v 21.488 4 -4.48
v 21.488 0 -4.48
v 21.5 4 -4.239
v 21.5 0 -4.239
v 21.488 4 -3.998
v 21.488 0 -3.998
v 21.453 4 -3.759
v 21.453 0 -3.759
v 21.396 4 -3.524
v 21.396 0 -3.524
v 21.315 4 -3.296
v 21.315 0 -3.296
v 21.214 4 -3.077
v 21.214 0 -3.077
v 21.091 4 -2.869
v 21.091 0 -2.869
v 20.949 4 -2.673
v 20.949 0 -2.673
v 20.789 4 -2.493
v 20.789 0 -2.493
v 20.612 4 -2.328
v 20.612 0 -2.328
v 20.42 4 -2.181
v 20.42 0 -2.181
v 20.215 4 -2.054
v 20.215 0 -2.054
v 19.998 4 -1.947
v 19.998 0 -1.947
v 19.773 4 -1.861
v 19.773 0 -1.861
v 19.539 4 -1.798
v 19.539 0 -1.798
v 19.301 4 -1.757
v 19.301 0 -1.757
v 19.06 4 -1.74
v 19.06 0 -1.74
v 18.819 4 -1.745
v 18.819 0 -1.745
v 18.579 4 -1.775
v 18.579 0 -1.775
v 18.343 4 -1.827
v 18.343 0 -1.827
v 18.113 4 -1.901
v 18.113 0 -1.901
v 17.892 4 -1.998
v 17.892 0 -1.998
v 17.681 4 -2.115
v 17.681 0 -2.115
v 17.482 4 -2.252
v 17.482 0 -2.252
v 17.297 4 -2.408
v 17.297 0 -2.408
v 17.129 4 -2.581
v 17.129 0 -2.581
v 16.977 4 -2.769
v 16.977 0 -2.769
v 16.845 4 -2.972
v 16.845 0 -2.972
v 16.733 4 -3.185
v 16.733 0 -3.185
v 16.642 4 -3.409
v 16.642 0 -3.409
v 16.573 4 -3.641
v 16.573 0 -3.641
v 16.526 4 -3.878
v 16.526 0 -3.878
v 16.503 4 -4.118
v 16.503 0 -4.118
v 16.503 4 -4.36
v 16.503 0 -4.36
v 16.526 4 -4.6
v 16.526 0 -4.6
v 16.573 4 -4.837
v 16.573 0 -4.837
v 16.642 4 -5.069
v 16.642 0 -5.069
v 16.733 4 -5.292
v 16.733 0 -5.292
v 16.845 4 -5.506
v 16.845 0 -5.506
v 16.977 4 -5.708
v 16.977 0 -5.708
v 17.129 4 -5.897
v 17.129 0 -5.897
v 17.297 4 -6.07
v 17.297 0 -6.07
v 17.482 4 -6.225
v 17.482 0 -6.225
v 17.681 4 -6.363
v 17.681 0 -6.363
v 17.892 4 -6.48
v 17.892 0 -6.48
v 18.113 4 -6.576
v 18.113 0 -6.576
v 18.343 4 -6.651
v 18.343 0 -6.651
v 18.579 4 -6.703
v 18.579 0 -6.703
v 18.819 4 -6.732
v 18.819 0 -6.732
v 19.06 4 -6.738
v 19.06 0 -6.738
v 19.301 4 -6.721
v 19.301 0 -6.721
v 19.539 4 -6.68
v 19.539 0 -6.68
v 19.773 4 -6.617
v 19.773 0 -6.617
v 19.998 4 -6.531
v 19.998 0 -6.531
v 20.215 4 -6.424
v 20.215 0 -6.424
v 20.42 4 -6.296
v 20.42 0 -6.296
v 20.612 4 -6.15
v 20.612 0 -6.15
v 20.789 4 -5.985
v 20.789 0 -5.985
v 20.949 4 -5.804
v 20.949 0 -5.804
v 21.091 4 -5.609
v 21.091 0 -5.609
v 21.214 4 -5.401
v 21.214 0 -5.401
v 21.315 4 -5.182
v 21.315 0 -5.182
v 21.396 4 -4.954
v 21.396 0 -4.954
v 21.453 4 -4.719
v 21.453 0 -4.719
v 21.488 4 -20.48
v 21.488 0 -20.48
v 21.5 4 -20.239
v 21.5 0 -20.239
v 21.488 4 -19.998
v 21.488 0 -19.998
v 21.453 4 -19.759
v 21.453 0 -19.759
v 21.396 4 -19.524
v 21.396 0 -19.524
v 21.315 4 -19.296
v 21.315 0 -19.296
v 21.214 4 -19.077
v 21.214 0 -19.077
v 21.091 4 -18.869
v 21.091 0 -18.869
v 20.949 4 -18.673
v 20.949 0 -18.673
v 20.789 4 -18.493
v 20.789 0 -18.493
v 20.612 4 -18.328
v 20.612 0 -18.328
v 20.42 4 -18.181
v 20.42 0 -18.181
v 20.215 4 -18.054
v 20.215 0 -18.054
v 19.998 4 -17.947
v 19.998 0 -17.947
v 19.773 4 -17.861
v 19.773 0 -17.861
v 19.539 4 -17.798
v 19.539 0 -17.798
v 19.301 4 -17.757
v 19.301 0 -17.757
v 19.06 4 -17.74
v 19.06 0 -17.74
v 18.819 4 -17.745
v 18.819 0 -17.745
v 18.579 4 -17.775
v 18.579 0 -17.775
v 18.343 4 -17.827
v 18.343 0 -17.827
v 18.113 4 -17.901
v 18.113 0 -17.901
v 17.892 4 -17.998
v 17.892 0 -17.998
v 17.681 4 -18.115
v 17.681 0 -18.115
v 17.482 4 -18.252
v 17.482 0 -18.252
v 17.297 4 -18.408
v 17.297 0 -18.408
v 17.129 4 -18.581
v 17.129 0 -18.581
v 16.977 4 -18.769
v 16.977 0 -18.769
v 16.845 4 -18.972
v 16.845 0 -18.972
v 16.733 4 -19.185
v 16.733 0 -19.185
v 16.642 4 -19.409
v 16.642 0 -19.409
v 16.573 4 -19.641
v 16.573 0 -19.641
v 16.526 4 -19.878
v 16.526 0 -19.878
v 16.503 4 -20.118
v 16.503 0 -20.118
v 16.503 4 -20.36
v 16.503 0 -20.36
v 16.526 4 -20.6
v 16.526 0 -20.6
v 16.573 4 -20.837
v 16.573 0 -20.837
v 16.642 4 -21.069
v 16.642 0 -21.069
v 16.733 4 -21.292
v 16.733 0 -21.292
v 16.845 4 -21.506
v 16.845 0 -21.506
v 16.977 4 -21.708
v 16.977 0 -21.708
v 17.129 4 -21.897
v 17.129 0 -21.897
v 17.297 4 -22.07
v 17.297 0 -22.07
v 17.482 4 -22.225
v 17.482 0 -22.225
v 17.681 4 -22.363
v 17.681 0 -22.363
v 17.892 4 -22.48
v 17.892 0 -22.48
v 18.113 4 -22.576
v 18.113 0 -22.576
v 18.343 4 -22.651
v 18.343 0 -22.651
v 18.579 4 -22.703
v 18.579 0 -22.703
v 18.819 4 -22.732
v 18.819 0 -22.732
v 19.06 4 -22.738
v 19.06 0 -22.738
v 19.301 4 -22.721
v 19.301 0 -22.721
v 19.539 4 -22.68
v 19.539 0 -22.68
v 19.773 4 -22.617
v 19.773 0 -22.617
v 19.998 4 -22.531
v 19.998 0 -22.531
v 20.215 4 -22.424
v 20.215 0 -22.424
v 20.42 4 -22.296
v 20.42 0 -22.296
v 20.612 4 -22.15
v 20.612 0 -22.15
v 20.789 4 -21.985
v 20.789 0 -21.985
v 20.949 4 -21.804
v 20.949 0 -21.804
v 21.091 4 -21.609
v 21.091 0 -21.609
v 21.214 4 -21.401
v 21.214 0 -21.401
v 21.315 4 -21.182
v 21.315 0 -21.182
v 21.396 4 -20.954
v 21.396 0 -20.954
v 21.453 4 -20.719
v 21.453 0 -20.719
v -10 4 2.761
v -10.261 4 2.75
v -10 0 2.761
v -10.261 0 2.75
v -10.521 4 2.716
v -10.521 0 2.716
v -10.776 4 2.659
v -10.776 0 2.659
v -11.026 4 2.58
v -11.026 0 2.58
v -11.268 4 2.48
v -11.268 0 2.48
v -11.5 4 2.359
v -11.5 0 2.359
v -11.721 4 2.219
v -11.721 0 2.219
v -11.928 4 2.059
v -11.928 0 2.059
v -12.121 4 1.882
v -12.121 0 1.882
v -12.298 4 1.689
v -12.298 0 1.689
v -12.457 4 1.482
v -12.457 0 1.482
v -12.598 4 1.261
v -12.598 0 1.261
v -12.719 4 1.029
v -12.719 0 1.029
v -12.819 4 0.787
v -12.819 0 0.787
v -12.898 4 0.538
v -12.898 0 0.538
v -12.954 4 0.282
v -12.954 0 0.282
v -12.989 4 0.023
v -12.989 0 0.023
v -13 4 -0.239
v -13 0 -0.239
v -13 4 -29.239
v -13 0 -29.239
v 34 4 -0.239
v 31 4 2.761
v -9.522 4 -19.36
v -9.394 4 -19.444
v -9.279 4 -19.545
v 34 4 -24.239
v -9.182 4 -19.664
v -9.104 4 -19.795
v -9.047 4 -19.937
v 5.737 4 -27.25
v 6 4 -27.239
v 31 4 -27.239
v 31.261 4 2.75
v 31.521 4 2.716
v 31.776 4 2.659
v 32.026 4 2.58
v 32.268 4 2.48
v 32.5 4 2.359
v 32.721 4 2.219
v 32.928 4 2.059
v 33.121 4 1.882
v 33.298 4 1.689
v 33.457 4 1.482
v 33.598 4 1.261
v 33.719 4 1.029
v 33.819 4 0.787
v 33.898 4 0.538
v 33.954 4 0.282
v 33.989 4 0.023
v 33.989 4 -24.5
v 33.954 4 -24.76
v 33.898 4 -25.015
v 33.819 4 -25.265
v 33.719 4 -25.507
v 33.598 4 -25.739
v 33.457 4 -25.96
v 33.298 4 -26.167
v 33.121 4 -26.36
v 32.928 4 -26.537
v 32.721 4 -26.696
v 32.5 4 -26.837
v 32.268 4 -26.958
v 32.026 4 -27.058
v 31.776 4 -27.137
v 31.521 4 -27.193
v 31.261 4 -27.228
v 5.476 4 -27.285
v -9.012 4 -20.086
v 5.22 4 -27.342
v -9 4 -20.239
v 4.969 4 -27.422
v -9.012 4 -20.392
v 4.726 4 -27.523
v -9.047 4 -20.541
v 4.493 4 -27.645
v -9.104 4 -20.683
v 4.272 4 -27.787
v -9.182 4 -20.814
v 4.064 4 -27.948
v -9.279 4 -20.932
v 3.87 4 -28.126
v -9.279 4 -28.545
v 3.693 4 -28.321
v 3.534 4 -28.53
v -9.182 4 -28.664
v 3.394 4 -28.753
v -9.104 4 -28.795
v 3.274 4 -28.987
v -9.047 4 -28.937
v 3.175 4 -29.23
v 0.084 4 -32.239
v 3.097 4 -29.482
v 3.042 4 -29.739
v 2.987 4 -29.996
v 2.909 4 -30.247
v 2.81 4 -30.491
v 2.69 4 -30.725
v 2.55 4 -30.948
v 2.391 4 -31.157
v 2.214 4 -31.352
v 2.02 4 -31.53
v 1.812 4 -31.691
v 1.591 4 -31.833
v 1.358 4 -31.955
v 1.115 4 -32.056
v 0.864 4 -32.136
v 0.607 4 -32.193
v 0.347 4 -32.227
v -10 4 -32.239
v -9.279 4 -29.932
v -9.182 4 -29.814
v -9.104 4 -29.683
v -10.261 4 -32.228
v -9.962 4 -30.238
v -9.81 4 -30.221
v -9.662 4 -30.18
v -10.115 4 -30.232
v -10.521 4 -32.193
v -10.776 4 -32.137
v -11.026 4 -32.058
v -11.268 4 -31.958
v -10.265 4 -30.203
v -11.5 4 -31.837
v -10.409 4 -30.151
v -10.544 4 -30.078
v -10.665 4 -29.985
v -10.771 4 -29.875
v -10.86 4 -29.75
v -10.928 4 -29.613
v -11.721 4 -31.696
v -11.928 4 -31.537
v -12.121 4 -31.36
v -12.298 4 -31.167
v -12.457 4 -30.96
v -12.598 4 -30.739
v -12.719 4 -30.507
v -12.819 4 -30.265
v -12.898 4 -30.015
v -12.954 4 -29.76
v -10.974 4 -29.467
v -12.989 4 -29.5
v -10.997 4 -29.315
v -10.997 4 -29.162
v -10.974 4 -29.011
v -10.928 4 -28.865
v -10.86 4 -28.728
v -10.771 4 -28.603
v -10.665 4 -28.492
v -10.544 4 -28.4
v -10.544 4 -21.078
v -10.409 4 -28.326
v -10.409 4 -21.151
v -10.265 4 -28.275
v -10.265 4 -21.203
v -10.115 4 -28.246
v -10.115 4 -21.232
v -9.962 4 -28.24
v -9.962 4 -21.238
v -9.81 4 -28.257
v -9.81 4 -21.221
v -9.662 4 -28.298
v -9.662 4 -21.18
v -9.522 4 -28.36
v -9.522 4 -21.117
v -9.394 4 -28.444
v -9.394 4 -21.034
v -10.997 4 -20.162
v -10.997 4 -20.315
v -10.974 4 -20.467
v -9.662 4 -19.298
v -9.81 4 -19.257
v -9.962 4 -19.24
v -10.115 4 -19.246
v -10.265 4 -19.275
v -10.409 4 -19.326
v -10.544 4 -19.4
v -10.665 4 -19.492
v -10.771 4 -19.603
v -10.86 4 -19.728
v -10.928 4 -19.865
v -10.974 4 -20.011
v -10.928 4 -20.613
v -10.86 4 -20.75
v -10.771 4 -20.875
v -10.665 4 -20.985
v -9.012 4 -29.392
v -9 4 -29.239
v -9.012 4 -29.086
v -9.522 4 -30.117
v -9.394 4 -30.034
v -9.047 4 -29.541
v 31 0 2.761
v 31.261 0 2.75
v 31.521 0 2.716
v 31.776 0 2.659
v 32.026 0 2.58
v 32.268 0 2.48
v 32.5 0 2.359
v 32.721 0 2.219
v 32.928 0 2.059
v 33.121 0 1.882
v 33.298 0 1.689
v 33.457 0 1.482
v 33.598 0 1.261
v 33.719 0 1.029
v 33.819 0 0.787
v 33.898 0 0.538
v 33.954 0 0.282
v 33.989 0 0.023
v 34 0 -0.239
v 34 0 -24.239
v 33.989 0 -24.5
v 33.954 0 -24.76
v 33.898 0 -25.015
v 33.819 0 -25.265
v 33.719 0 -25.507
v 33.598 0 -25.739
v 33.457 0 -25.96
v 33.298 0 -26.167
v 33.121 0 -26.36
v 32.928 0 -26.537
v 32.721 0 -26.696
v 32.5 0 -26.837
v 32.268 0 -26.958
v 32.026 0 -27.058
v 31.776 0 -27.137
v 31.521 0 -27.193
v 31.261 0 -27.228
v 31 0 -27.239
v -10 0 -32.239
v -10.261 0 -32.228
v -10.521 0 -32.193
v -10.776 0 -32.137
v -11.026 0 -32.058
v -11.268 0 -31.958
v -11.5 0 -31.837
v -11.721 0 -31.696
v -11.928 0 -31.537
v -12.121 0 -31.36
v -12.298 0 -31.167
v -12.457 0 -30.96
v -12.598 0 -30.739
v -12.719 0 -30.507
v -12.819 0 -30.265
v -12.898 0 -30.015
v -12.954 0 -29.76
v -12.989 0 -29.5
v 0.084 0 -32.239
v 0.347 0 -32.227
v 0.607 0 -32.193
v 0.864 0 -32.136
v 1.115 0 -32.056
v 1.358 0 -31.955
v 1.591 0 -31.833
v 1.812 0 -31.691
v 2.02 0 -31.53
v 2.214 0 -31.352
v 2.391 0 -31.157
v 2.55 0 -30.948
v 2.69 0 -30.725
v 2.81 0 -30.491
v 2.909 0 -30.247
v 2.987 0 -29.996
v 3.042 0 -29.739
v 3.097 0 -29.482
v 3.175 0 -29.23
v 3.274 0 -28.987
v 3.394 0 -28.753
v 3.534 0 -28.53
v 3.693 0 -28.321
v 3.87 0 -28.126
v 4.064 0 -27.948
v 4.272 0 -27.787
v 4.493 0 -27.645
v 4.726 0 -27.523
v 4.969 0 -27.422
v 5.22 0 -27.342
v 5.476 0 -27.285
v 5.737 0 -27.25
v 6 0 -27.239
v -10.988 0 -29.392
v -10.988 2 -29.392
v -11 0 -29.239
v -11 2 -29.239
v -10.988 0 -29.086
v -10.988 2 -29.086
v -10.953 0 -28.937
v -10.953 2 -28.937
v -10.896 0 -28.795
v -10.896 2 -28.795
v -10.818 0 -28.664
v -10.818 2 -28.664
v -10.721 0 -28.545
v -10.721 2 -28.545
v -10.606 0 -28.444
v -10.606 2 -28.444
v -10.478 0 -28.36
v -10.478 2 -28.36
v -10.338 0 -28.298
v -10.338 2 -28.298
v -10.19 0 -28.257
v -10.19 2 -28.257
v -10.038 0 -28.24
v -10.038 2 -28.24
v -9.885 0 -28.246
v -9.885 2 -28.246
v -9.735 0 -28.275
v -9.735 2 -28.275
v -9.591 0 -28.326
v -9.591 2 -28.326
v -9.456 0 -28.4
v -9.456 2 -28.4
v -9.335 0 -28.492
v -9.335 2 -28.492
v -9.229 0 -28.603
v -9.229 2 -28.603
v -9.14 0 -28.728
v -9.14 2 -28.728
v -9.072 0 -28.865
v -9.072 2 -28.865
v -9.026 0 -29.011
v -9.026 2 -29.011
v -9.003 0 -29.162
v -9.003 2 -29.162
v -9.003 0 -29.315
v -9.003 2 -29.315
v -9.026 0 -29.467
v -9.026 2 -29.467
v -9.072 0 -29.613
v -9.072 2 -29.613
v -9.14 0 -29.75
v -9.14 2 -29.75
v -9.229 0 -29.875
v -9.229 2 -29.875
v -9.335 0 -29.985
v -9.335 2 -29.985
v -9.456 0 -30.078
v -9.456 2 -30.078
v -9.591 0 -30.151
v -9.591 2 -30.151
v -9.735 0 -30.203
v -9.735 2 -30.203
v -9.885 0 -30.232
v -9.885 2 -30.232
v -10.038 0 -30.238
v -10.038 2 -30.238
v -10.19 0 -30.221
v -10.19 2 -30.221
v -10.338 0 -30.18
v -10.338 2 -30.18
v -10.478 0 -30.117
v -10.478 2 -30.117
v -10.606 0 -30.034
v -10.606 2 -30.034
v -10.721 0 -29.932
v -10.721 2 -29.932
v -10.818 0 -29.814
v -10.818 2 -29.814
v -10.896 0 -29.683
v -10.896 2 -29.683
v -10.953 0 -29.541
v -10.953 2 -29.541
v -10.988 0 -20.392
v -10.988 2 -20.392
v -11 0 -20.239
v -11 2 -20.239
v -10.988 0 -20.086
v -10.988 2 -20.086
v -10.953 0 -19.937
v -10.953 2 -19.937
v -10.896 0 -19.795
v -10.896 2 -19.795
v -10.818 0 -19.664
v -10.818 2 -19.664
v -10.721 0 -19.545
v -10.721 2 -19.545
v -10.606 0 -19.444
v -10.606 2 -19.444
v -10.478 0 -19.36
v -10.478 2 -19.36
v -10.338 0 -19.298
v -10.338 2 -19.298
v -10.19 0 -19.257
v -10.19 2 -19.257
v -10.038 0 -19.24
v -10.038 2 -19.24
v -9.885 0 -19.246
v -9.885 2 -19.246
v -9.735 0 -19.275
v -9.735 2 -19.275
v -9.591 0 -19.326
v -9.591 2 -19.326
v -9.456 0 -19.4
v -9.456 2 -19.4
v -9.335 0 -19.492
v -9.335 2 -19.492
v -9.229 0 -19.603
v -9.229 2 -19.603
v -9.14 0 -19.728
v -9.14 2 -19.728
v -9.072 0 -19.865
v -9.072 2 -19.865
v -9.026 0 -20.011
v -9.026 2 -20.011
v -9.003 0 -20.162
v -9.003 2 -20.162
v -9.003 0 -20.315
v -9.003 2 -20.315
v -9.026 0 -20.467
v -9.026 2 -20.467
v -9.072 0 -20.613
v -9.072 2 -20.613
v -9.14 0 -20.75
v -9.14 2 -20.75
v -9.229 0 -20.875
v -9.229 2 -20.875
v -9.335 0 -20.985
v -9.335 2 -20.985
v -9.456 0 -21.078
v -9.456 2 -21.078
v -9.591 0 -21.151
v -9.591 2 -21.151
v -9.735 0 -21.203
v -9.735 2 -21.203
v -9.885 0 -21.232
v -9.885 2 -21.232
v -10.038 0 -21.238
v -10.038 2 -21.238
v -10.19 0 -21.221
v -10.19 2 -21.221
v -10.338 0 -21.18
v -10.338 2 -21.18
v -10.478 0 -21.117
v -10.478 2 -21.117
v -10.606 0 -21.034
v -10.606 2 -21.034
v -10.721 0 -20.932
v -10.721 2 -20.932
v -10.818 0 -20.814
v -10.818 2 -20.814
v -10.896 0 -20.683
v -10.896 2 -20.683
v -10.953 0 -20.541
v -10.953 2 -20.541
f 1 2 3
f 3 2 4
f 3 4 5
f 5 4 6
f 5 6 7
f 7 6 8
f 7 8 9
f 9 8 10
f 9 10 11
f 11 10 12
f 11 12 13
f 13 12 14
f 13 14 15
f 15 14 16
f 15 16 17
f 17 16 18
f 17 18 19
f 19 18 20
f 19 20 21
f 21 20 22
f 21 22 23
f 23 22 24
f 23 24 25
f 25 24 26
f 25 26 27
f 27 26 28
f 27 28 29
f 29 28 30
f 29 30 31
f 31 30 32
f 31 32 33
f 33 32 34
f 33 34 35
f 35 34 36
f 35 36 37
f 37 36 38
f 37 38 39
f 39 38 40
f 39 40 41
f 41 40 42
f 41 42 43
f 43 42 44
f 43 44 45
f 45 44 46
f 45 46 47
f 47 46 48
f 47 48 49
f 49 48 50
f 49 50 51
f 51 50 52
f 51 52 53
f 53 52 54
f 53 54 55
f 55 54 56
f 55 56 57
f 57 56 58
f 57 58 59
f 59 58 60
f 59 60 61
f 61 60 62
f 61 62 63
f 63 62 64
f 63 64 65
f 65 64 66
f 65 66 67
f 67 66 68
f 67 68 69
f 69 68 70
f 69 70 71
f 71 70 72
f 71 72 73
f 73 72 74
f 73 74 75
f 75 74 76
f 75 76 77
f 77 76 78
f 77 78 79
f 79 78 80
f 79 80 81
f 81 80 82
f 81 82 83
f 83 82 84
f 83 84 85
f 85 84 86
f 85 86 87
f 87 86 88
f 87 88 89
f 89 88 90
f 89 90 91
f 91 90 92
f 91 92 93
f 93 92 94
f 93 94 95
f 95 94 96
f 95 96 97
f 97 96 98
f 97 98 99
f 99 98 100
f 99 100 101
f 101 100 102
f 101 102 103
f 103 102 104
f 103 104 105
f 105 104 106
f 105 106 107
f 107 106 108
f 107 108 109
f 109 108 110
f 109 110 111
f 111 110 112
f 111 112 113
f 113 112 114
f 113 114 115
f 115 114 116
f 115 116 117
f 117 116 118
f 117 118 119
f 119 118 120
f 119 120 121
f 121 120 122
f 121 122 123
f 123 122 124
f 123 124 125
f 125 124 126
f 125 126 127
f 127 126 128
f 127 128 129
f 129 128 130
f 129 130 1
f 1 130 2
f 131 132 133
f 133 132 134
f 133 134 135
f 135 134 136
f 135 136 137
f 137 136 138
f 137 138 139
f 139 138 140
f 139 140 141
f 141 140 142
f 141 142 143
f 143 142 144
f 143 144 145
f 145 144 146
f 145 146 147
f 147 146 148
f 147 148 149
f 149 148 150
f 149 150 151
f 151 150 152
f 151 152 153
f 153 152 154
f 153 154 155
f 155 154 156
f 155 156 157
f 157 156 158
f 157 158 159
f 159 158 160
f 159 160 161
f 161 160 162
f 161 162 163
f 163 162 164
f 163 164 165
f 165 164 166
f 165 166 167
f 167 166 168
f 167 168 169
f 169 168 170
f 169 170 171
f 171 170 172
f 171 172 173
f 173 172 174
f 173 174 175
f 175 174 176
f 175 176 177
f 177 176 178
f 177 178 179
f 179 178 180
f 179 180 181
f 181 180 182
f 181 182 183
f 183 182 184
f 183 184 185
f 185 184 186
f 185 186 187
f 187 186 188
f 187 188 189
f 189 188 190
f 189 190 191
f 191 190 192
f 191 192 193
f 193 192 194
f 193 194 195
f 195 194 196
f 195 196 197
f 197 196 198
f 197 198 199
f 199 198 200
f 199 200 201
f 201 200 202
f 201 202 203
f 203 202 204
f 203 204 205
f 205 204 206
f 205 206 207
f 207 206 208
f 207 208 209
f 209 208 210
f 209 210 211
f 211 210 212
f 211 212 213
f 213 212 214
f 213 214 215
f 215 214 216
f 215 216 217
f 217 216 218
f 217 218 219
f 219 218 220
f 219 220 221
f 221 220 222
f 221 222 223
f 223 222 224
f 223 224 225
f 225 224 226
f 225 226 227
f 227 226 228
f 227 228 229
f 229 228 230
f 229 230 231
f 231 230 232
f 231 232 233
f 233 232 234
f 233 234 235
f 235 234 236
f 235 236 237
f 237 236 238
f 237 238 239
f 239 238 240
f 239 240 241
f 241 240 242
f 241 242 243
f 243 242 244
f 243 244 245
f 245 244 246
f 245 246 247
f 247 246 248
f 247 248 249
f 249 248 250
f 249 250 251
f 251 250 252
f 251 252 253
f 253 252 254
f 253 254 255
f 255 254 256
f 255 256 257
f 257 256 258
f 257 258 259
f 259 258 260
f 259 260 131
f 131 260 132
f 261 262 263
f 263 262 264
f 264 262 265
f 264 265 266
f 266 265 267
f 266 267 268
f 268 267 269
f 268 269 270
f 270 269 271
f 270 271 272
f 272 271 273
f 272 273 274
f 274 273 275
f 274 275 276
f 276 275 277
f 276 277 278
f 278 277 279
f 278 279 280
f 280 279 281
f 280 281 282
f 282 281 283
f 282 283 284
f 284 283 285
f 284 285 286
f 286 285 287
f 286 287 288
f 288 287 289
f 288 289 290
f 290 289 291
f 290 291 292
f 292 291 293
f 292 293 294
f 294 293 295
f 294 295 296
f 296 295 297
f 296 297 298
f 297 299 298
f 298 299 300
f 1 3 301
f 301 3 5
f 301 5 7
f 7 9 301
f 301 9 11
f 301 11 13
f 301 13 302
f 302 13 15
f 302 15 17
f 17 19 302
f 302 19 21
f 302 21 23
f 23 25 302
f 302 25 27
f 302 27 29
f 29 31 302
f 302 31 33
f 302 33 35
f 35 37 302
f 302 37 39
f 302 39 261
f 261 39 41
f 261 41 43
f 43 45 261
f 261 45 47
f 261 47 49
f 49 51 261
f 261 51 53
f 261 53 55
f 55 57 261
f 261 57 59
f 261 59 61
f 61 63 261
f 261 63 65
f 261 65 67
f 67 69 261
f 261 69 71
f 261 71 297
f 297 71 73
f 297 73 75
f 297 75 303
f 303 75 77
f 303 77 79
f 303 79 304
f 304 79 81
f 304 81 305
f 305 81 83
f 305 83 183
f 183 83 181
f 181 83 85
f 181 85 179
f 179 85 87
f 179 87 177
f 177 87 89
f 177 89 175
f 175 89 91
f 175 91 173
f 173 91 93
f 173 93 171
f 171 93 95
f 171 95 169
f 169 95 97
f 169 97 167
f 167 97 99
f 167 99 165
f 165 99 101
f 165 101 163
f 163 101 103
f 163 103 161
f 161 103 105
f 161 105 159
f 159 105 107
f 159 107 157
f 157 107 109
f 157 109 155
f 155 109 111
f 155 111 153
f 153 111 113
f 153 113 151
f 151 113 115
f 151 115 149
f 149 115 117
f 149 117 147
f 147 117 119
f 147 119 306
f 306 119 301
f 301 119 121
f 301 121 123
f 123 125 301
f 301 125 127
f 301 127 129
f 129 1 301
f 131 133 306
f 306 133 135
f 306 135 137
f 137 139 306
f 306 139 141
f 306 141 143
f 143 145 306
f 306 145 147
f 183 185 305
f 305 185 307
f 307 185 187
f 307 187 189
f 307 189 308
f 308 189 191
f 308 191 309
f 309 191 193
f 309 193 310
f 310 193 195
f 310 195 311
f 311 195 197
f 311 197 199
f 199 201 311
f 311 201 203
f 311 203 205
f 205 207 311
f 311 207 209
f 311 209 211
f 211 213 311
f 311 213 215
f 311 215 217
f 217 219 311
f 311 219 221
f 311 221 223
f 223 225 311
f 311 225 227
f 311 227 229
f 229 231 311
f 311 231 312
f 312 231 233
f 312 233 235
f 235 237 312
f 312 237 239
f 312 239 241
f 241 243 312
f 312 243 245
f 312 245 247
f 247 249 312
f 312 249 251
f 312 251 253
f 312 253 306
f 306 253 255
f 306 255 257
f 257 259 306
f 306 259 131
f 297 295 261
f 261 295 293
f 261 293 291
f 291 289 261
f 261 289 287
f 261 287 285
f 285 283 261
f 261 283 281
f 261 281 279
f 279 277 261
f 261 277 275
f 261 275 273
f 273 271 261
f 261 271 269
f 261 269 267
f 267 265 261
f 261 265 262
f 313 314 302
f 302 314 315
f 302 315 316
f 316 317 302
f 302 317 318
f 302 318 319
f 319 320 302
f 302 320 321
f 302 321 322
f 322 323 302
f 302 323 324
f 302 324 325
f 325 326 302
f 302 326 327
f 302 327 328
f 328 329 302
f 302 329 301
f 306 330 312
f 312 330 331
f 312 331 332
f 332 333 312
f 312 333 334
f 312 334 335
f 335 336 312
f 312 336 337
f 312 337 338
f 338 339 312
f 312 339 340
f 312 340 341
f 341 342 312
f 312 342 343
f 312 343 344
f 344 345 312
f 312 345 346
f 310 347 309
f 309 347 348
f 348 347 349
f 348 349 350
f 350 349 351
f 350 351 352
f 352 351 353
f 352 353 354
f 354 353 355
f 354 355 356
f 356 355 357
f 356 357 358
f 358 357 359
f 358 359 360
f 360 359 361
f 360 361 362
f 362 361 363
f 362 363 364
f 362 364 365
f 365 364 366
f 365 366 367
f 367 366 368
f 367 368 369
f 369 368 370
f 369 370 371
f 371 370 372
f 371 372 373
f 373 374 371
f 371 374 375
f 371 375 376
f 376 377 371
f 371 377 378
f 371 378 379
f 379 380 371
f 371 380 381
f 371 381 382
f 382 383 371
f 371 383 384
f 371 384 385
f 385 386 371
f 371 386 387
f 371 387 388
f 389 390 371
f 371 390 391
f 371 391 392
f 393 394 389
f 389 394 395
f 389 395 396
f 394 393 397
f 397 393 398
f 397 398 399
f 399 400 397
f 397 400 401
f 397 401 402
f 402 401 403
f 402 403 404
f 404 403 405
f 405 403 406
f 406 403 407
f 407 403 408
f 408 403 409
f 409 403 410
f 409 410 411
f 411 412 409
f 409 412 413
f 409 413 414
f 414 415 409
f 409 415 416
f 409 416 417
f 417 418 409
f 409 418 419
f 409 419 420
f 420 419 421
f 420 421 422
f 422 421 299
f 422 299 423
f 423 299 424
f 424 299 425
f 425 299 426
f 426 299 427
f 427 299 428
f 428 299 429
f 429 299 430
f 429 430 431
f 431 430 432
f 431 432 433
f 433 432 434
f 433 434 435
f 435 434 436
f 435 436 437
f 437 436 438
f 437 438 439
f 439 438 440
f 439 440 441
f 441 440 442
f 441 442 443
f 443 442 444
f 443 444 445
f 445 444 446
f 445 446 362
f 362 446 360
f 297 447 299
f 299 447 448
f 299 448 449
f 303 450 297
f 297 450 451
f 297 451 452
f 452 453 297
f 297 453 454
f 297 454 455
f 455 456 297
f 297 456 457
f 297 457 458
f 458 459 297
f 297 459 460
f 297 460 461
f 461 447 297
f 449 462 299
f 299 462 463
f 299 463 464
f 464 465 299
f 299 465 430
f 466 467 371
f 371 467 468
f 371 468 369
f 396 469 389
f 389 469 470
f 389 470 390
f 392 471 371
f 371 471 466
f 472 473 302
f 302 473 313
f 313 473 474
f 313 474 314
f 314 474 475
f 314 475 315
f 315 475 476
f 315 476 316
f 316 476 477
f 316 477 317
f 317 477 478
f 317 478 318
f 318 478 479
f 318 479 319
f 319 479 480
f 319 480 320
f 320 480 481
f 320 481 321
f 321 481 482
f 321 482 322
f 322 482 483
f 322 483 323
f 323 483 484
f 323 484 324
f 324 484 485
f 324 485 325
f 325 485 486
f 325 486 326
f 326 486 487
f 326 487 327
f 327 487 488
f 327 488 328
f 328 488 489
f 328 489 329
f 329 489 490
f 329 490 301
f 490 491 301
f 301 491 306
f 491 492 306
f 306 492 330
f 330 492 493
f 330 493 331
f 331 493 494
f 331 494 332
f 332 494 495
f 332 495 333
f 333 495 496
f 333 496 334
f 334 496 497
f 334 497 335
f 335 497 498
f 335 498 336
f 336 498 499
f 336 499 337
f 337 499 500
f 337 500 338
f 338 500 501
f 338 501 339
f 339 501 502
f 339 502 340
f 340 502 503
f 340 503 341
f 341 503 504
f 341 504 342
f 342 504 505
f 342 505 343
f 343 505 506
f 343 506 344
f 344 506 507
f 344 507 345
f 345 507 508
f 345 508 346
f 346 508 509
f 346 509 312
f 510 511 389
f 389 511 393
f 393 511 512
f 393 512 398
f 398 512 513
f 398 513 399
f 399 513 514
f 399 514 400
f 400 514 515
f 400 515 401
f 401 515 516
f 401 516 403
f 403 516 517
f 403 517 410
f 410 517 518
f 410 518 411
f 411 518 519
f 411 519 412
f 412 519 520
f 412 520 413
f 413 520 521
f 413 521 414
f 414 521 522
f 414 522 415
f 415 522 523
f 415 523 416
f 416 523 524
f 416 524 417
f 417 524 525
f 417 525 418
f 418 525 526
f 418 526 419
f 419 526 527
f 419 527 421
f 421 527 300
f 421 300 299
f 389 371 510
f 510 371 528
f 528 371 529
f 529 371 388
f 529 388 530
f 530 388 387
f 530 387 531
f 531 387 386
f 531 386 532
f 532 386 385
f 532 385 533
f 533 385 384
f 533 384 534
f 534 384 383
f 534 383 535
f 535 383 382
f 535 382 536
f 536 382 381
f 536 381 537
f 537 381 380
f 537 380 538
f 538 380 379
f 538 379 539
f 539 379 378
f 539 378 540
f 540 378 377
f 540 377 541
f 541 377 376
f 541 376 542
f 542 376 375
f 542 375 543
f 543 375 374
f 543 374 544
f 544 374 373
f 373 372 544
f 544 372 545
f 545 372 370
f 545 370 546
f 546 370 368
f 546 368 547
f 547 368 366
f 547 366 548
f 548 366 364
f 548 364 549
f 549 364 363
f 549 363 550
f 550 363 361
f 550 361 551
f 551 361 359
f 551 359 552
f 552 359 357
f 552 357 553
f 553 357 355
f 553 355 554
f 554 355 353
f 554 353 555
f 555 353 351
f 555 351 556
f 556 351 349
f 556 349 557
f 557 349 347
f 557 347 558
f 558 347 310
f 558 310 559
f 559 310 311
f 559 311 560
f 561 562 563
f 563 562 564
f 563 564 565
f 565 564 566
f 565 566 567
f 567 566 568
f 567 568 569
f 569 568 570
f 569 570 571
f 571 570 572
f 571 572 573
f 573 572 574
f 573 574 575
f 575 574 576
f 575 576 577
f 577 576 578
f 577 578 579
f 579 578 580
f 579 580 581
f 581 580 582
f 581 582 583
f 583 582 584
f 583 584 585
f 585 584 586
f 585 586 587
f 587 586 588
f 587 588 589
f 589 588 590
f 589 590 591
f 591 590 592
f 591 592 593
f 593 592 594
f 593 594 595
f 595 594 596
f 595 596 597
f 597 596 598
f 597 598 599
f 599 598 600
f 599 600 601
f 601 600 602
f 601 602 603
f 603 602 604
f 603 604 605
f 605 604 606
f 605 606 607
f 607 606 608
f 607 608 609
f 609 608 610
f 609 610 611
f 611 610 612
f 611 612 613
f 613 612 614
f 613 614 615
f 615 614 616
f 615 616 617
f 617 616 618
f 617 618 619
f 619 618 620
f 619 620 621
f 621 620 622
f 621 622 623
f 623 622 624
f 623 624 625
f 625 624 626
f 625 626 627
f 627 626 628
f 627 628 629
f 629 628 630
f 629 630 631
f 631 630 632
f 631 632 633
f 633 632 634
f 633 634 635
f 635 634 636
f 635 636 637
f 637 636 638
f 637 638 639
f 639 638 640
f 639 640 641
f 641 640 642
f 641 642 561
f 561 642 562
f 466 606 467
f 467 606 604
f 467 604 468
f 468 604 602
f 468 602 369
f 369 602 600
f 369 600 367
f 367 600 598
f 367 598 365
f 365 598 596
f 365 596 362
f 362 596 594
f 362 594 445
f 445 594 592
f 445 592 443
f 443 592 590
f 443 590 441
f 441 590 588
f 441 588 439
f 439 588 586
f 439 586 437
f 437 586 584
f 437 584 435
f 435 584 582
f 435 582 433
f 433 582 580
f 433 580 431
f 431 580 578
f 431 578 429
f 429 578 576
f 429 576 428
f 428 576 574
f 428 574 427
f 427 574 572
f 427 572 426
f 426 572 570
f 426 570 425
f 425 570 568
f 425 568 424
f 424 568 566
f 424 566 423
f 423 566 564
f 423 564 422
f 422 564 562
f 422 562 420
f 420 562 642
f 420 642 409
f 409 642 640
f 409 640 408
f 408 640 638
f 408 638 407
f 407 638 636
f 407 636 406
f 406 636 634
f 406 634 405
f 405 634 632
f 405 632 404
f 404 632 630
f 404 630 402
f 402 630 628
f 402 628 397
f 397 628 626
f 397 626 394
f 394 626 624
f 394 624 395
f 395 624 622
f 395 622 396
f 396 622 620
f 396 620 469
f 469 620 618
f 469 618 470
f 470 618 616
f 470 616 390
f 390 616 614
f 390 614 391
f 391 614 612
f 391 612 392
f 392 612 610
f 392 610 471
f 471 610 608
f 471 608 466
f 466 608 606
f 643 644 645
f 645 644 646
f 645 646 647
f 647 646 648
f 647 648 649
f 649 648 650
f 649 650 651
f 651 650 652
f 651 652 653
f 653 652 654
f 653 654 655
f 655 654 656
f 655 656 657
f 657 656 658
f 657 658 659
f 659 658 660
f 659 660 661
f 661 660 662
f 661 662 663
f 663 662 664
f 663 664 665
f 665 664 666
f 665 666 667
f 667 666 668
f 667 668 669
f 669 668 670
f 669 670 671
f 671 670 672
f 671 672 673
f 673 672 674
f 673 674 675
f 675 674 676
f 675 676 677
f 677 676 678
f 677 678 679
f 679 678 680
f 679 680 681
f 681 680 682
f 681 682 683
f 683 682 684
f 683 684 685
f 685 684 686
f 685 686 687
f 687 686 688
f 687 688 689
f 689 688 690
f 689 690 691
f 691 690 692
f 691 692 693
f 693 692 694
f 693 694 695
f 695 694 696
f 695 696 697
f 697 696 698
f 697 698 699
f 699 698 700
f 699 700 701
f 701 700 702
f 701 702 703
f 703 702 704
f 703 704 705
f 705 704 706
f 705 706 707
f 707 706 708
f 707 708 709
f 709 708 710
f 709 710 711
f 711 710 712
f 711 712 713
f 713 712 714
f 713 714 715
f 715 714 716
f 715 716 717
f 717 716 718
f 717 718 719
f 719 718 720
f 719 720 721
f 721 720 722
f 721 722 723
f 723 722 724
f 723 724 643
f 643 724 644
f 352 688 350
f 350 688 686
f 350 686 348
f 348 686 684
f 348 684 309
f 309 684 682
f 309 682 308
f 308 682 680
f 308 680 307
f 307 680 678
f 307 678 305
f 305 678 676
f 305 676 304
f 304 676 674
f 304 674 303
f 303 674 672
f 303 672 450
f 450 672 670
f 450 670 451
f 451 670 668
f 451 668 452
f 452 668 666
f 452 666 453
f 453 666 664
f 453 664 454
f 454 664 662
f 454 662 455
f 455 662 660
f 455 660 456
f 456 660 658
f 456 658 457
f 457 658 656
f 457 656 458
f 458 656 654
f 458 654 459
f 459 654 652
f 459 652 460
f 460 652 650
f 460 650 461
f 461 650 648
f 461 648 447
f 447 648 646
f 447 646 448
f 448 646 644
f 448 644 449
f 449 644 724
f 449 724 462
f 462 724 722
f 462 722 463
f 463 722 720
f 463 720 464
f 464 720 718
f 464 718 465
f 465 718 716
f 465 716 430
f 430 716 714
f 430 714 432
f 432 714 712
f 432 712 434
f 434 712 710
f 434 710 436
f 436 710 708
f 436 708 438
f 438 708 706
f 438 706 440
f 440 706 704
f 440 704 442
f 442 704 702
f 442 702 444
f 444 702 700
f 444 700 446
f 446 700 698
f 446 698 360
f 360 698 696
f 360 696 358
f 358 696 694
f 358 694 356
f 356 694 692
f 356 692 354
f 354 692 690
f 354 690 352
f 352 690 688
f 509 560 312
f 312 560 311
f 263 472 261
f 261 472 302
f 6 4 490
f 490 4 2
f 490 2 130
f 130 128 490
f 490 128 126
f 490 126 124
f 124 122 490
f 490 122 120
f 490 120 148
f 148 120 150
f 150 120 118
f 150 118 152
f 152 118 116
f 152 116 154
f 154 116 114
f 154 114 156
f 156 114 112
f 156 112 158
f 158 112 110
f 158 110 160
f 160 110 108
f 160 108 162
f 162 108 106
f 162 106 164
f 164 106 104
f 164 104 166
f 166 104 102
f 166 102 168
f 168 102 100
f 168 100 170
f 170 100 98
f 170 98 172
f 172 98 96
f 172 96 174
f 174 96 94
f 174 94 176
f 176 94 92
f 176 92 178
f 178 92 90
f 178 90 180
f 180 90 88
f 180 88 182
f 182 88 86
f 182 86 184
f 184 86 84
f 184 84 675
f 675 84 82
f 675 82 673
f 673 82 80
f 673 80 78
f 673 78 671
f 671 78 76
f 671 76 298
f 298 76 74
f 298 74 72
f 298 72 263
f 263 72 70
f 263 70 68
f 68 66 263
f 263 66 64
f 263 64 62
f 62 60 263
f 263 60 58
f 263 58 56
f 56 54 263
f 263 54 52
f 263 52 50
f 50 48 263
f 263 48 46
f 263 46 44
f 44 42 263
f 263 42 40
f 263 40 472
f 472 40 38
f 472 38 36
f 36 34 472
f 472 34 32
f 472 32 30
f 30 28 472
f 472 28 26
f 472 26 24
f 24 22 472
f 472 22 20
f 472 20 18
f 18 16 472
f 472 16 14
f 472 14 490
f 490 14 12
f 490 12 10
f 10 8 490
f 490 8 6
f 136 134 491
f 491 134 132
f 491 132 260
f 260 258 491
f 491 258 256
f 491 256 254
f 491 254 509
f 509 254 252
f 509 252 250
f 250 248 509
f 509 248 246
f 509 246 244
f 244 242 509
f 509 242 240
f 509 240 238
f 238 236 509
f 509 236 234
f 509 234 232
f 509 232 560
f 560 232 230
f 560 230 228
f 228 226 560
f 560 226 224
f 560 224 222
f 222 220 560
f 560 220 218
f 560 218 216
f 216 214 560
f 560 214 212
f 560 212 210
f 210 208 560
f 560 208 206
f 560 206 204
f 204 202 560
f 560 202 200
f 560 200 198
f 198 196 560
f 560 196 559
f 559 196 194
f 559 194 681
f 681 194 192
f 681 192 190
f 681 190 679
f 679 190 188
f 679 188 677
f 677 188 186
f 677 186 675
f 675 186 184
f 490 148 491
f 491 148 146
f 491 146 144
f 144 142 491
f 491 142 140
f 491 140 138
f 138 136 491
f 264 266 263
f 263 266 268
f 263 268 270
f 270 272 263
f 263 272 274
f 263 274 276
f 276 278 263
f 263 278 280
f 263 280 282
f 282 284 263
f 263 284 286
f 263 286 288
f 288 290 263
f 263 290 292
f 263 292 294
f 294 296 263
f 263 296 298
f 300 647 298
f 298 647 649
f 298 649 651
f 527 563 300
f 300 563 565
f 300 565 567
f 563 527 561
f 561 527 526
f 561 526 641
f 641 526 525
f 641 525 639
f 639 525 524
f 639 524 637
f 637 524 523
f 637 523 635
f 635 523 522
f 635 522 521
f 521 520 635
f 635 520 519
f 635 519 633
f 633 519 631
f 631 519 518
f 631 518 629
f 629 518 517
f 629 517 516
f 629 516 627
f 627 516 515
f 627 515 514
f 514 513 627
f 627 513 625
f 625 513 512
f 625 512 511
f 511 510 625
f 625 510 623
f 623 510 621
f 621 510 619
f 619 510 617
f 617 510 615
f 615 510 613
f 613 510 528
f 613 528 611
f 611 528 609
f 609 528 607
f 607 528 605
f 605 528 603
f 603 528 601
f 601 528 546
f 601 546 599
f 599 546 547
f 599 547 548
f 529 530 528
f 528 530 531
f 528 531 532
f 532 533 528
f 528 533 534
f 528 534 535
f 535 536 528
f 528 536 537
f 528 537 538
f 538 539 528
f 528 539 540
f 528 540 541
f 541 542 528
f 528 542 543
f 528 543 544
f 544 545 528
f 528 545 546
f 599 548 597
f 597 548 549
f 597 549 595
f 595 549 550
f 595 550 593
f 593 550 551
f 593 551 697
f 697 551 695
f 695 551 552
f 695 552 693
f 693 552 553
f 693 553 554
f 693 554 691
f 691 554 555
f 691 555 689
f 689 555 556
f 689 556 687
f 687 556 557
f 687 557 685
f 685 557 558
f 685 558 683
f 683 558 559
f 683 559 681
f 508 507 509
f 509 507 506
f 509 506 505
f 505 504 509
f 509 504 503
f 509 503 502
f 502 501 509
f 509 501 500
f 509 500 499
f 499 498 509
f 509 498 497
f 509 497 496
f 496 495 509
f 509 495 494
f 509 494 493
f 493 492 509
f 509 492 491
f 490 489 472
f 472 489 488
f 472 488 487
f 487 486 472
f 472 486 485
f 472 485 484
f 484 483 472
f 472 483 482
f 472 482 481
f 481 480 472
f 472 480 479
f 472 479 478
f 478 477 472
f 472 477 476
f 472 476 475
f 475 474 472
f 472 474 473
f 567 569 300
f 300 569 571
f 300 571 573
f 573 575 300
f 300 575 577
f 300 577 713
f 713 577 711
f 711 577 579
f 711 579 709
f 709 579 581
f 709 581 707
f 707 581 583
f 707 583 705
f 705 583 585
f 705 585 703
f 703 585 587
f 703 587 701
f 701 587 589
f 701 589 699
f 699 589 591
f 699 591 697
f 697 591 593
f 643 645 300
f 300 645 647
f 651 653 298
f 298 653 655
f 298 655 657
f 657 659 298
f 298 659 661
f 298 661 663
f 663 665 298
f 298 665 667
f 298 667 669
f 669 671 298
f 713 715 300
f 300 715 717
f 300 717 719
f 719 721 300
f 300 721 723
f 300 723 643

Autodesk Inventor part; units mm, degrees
ref_plane "YZ Plane" through (0, 0, 0) normal (1, 0, 0) x (0, 1, 0)
ref_plane "XZ Plane" through (0, 0, 0) normal (0, 1, 0) x (-1, 0, 0)
ref_plane "XY Plane" through (0, 0, 0) normal (0, 0, 1) x (1, 0, 0)
sketch "Sketch1" plane through (0, 0, 0) normal (0, 1, 0) x (-1, 0, 0)
  line L0 (13, 2.7611) -> (-25, 2.7611)
  line L1 (-25, 2.7611) -> (-25, -27.2389)
  line L2 (-25, -27.2389) -> (13, -27.2389)
  line L3 (13, -27.2389) -> (13, 2.7611)
  circle A0 centre (-10, -4.2389) radius 2.75
  line L4 (-4.8021, -1.4889) -> (-20.6552, -1.4889)
  line L5 (-20.6552, -1.4889) -> (-20.6552, -6.9889)
  line L6 (-20.6552, -6.9889) -> (-4.8021, -6.9889)
  line L7 (-4.8021, -6.9889) -> (-4.8021, -1.4889)
  circle A1 centre (-4.8021, -4.2389) radius 2.75
  circle A2 centre (-20.6552, -4.2389) radius 2.75
  point P0 (0, 0)
  point P1 (-20.6552, -1.4889)
  point P2 (-4.8021, -1.4889)
  point P3 (-10, -6.9889)
  point P4 (-10, -1.4889)
  dimension "d0" = 15
  dimension "d1" = 38
  dimension "d2" = 5.5
  dimension "d3" = 7
  dimension "d4" = 30
extrude "Extrusion1" add sketch "Sketch1" along normal blind 4 contours L3 L2 L1 L0 | A0 A1 L7 | A0 L4 A1 | A1 L6 A0 | A1 L7
sketch "Sketch2" plane through (0, 4, 0) normal (0, 1, 0) x (1, 0, 0)
  line L0 (-13, -2.7611) -> (25, -2.7611) projected
  line L1 (25, -2.7611) -> (34, -2.7611)
  line L2 (34, -2.7611) -> (34, 27.2389)
  line L3 (34, 27.2389) -> (25, 27.2389)
  line L4 (25, 27.2389) -> (25, -2.7611)
  line L5 (25, 27.2389) -> (-13, 27.2389) projected
  point P0 (0, 0)
  dimension "d11" = 9
extrude "Extrusion2" add sketch "Sketch2" against normal up to surface (4 mm away)
sketch "Sketch3" plane through (0, 4, 0) normal (0, 1, 0) x (1, 0, 0)
  circle A0 centre (20.6552, 20.2389) radius 2.75
  line L0 (34, 27.2389) -> (-13, 27.2389) projected
  arc A1 (20.6552, 1.4889) -> (20.6552, 6.9889) centre (20.6552, 4.2389) ccw projected
  circle A2 centre (10, 20.2389) radius 2.75
  line L1 (10, 17.4889) -> (20.6552, 17.4889)
  line L2 (20.6552, 17.4889) -> (20.6552, 22.9889)
  line L3 (20.6552, 22.9889) -> (10, 22.9889)
  line L4 (10, 22.9889) -> (10, 17.4889)
  point P0 (0, 0)
  point P1 (10, 22.9889)
  point P2 (20.6552, 17.4889)
  dimension "d15" = 5.5
  dimension "d14" = 7
extrude "Extrusion3" cut sketch "Sketch3" against normal blind 10
sketch "Sketch4" plane through (0, 4, 0) normal (0, 1, 0) x (1, 0, 0)
  line L0 (-13, 27.2389) -> (-13, -2.7611) projected
  line L1 (-13, 15.4131) -> (3, 15.4131)
  line L2 (3, 15.4131) -> (3, 32.2389)
  line L3 (3, 32.2389) -> (-13, 32.2389)
  line L4 (-13, 32.2389) -> (-13, 15.4131)
  line L5 (34, 27.2389) -> (-13, 27.2389) projected
  point P0 (0, 0)
  point P1 (-13, 27.2389)
  point P2 (3, 27.2389)
  dimension "d18" = 16
  dimension "d19" = 5
extrude "Extrusion4" add sketch "Sketch4" against normal up to surface (4 mm away) contours L4 L3 L2 L5
sketch "Sketch5" plane through (0, 4, 0) normal (0, 1, 0) x (1, 0, 0)
  circle A0 centre (-10, 29.2389) radius 1
  circle A1 centre (-10, 20.2389) radius 1
  line L0 (-13, 32.2389) -> (-13, -2.7611) projected
  line L1 (3, 32.2389) -> (-13, 32.2389) projected
  point P0 (0, 0)
  dimension "d22" = 2
  dimension "d23" = 9
  dimension "d24" = 3
  dimension "d25" = 3
extrude "Extrusion5" cut sketch "Sketch5" against normal through all
fillet "Fillet1" radius 3 6 edges at (3, 2, -27.2389) (3, 2, -32.2389) (-13, 2, -32.2389) (34, 2, -27.2389) (34, 2, 2.7611) (-13, 2, 2.7611)
sketch "Sketch7" plane through (0, 4, 0) normal (0, 1, 0) x (1, 0, 0)
  arc A0 (10, 6.9889) -> (10, 1.4889) centre (10, 4.2389) ccw projected
  line L0 (10, 6.9889) -> (20.6552, 6.9889) projected
  line L1 (20.6552, 1.4889) -> (10, 1.4889) projected
  arc A1 (20.6552, 1.4889) -> (20.6552, 6.9889) centre (20.6552, 4.2389) ccw projected
  line L2 (20.6552, 17.4889) -> (10, 17.4889) projected
  line L3 (10, 22.9889) -> (20.6552, 22.9889) projected
  arc A2 (10, 22.9889) -> (10, 17.4889) centre (10, 20.2389) ccw projected
  arc A3 (20.6552, 17.4889) -> (20.6552, 22.9889) centre (20.6552, 20.2389) ccw projected
  circle A4 centre (19, 4.2389) radius 2.5
  circle A5 centre (19, 20.2389) radius 2.5
  line L4 (34, 0.2389) -> (34, 24.2389) projected
  point P0 (0, 0)
  dimension "d31" = 5
  dimension "d32" = 15
extrude "Extrusion7" add sketch "Sketch7" against normal up to surface (4 mm away)
properties part number "ystop"
